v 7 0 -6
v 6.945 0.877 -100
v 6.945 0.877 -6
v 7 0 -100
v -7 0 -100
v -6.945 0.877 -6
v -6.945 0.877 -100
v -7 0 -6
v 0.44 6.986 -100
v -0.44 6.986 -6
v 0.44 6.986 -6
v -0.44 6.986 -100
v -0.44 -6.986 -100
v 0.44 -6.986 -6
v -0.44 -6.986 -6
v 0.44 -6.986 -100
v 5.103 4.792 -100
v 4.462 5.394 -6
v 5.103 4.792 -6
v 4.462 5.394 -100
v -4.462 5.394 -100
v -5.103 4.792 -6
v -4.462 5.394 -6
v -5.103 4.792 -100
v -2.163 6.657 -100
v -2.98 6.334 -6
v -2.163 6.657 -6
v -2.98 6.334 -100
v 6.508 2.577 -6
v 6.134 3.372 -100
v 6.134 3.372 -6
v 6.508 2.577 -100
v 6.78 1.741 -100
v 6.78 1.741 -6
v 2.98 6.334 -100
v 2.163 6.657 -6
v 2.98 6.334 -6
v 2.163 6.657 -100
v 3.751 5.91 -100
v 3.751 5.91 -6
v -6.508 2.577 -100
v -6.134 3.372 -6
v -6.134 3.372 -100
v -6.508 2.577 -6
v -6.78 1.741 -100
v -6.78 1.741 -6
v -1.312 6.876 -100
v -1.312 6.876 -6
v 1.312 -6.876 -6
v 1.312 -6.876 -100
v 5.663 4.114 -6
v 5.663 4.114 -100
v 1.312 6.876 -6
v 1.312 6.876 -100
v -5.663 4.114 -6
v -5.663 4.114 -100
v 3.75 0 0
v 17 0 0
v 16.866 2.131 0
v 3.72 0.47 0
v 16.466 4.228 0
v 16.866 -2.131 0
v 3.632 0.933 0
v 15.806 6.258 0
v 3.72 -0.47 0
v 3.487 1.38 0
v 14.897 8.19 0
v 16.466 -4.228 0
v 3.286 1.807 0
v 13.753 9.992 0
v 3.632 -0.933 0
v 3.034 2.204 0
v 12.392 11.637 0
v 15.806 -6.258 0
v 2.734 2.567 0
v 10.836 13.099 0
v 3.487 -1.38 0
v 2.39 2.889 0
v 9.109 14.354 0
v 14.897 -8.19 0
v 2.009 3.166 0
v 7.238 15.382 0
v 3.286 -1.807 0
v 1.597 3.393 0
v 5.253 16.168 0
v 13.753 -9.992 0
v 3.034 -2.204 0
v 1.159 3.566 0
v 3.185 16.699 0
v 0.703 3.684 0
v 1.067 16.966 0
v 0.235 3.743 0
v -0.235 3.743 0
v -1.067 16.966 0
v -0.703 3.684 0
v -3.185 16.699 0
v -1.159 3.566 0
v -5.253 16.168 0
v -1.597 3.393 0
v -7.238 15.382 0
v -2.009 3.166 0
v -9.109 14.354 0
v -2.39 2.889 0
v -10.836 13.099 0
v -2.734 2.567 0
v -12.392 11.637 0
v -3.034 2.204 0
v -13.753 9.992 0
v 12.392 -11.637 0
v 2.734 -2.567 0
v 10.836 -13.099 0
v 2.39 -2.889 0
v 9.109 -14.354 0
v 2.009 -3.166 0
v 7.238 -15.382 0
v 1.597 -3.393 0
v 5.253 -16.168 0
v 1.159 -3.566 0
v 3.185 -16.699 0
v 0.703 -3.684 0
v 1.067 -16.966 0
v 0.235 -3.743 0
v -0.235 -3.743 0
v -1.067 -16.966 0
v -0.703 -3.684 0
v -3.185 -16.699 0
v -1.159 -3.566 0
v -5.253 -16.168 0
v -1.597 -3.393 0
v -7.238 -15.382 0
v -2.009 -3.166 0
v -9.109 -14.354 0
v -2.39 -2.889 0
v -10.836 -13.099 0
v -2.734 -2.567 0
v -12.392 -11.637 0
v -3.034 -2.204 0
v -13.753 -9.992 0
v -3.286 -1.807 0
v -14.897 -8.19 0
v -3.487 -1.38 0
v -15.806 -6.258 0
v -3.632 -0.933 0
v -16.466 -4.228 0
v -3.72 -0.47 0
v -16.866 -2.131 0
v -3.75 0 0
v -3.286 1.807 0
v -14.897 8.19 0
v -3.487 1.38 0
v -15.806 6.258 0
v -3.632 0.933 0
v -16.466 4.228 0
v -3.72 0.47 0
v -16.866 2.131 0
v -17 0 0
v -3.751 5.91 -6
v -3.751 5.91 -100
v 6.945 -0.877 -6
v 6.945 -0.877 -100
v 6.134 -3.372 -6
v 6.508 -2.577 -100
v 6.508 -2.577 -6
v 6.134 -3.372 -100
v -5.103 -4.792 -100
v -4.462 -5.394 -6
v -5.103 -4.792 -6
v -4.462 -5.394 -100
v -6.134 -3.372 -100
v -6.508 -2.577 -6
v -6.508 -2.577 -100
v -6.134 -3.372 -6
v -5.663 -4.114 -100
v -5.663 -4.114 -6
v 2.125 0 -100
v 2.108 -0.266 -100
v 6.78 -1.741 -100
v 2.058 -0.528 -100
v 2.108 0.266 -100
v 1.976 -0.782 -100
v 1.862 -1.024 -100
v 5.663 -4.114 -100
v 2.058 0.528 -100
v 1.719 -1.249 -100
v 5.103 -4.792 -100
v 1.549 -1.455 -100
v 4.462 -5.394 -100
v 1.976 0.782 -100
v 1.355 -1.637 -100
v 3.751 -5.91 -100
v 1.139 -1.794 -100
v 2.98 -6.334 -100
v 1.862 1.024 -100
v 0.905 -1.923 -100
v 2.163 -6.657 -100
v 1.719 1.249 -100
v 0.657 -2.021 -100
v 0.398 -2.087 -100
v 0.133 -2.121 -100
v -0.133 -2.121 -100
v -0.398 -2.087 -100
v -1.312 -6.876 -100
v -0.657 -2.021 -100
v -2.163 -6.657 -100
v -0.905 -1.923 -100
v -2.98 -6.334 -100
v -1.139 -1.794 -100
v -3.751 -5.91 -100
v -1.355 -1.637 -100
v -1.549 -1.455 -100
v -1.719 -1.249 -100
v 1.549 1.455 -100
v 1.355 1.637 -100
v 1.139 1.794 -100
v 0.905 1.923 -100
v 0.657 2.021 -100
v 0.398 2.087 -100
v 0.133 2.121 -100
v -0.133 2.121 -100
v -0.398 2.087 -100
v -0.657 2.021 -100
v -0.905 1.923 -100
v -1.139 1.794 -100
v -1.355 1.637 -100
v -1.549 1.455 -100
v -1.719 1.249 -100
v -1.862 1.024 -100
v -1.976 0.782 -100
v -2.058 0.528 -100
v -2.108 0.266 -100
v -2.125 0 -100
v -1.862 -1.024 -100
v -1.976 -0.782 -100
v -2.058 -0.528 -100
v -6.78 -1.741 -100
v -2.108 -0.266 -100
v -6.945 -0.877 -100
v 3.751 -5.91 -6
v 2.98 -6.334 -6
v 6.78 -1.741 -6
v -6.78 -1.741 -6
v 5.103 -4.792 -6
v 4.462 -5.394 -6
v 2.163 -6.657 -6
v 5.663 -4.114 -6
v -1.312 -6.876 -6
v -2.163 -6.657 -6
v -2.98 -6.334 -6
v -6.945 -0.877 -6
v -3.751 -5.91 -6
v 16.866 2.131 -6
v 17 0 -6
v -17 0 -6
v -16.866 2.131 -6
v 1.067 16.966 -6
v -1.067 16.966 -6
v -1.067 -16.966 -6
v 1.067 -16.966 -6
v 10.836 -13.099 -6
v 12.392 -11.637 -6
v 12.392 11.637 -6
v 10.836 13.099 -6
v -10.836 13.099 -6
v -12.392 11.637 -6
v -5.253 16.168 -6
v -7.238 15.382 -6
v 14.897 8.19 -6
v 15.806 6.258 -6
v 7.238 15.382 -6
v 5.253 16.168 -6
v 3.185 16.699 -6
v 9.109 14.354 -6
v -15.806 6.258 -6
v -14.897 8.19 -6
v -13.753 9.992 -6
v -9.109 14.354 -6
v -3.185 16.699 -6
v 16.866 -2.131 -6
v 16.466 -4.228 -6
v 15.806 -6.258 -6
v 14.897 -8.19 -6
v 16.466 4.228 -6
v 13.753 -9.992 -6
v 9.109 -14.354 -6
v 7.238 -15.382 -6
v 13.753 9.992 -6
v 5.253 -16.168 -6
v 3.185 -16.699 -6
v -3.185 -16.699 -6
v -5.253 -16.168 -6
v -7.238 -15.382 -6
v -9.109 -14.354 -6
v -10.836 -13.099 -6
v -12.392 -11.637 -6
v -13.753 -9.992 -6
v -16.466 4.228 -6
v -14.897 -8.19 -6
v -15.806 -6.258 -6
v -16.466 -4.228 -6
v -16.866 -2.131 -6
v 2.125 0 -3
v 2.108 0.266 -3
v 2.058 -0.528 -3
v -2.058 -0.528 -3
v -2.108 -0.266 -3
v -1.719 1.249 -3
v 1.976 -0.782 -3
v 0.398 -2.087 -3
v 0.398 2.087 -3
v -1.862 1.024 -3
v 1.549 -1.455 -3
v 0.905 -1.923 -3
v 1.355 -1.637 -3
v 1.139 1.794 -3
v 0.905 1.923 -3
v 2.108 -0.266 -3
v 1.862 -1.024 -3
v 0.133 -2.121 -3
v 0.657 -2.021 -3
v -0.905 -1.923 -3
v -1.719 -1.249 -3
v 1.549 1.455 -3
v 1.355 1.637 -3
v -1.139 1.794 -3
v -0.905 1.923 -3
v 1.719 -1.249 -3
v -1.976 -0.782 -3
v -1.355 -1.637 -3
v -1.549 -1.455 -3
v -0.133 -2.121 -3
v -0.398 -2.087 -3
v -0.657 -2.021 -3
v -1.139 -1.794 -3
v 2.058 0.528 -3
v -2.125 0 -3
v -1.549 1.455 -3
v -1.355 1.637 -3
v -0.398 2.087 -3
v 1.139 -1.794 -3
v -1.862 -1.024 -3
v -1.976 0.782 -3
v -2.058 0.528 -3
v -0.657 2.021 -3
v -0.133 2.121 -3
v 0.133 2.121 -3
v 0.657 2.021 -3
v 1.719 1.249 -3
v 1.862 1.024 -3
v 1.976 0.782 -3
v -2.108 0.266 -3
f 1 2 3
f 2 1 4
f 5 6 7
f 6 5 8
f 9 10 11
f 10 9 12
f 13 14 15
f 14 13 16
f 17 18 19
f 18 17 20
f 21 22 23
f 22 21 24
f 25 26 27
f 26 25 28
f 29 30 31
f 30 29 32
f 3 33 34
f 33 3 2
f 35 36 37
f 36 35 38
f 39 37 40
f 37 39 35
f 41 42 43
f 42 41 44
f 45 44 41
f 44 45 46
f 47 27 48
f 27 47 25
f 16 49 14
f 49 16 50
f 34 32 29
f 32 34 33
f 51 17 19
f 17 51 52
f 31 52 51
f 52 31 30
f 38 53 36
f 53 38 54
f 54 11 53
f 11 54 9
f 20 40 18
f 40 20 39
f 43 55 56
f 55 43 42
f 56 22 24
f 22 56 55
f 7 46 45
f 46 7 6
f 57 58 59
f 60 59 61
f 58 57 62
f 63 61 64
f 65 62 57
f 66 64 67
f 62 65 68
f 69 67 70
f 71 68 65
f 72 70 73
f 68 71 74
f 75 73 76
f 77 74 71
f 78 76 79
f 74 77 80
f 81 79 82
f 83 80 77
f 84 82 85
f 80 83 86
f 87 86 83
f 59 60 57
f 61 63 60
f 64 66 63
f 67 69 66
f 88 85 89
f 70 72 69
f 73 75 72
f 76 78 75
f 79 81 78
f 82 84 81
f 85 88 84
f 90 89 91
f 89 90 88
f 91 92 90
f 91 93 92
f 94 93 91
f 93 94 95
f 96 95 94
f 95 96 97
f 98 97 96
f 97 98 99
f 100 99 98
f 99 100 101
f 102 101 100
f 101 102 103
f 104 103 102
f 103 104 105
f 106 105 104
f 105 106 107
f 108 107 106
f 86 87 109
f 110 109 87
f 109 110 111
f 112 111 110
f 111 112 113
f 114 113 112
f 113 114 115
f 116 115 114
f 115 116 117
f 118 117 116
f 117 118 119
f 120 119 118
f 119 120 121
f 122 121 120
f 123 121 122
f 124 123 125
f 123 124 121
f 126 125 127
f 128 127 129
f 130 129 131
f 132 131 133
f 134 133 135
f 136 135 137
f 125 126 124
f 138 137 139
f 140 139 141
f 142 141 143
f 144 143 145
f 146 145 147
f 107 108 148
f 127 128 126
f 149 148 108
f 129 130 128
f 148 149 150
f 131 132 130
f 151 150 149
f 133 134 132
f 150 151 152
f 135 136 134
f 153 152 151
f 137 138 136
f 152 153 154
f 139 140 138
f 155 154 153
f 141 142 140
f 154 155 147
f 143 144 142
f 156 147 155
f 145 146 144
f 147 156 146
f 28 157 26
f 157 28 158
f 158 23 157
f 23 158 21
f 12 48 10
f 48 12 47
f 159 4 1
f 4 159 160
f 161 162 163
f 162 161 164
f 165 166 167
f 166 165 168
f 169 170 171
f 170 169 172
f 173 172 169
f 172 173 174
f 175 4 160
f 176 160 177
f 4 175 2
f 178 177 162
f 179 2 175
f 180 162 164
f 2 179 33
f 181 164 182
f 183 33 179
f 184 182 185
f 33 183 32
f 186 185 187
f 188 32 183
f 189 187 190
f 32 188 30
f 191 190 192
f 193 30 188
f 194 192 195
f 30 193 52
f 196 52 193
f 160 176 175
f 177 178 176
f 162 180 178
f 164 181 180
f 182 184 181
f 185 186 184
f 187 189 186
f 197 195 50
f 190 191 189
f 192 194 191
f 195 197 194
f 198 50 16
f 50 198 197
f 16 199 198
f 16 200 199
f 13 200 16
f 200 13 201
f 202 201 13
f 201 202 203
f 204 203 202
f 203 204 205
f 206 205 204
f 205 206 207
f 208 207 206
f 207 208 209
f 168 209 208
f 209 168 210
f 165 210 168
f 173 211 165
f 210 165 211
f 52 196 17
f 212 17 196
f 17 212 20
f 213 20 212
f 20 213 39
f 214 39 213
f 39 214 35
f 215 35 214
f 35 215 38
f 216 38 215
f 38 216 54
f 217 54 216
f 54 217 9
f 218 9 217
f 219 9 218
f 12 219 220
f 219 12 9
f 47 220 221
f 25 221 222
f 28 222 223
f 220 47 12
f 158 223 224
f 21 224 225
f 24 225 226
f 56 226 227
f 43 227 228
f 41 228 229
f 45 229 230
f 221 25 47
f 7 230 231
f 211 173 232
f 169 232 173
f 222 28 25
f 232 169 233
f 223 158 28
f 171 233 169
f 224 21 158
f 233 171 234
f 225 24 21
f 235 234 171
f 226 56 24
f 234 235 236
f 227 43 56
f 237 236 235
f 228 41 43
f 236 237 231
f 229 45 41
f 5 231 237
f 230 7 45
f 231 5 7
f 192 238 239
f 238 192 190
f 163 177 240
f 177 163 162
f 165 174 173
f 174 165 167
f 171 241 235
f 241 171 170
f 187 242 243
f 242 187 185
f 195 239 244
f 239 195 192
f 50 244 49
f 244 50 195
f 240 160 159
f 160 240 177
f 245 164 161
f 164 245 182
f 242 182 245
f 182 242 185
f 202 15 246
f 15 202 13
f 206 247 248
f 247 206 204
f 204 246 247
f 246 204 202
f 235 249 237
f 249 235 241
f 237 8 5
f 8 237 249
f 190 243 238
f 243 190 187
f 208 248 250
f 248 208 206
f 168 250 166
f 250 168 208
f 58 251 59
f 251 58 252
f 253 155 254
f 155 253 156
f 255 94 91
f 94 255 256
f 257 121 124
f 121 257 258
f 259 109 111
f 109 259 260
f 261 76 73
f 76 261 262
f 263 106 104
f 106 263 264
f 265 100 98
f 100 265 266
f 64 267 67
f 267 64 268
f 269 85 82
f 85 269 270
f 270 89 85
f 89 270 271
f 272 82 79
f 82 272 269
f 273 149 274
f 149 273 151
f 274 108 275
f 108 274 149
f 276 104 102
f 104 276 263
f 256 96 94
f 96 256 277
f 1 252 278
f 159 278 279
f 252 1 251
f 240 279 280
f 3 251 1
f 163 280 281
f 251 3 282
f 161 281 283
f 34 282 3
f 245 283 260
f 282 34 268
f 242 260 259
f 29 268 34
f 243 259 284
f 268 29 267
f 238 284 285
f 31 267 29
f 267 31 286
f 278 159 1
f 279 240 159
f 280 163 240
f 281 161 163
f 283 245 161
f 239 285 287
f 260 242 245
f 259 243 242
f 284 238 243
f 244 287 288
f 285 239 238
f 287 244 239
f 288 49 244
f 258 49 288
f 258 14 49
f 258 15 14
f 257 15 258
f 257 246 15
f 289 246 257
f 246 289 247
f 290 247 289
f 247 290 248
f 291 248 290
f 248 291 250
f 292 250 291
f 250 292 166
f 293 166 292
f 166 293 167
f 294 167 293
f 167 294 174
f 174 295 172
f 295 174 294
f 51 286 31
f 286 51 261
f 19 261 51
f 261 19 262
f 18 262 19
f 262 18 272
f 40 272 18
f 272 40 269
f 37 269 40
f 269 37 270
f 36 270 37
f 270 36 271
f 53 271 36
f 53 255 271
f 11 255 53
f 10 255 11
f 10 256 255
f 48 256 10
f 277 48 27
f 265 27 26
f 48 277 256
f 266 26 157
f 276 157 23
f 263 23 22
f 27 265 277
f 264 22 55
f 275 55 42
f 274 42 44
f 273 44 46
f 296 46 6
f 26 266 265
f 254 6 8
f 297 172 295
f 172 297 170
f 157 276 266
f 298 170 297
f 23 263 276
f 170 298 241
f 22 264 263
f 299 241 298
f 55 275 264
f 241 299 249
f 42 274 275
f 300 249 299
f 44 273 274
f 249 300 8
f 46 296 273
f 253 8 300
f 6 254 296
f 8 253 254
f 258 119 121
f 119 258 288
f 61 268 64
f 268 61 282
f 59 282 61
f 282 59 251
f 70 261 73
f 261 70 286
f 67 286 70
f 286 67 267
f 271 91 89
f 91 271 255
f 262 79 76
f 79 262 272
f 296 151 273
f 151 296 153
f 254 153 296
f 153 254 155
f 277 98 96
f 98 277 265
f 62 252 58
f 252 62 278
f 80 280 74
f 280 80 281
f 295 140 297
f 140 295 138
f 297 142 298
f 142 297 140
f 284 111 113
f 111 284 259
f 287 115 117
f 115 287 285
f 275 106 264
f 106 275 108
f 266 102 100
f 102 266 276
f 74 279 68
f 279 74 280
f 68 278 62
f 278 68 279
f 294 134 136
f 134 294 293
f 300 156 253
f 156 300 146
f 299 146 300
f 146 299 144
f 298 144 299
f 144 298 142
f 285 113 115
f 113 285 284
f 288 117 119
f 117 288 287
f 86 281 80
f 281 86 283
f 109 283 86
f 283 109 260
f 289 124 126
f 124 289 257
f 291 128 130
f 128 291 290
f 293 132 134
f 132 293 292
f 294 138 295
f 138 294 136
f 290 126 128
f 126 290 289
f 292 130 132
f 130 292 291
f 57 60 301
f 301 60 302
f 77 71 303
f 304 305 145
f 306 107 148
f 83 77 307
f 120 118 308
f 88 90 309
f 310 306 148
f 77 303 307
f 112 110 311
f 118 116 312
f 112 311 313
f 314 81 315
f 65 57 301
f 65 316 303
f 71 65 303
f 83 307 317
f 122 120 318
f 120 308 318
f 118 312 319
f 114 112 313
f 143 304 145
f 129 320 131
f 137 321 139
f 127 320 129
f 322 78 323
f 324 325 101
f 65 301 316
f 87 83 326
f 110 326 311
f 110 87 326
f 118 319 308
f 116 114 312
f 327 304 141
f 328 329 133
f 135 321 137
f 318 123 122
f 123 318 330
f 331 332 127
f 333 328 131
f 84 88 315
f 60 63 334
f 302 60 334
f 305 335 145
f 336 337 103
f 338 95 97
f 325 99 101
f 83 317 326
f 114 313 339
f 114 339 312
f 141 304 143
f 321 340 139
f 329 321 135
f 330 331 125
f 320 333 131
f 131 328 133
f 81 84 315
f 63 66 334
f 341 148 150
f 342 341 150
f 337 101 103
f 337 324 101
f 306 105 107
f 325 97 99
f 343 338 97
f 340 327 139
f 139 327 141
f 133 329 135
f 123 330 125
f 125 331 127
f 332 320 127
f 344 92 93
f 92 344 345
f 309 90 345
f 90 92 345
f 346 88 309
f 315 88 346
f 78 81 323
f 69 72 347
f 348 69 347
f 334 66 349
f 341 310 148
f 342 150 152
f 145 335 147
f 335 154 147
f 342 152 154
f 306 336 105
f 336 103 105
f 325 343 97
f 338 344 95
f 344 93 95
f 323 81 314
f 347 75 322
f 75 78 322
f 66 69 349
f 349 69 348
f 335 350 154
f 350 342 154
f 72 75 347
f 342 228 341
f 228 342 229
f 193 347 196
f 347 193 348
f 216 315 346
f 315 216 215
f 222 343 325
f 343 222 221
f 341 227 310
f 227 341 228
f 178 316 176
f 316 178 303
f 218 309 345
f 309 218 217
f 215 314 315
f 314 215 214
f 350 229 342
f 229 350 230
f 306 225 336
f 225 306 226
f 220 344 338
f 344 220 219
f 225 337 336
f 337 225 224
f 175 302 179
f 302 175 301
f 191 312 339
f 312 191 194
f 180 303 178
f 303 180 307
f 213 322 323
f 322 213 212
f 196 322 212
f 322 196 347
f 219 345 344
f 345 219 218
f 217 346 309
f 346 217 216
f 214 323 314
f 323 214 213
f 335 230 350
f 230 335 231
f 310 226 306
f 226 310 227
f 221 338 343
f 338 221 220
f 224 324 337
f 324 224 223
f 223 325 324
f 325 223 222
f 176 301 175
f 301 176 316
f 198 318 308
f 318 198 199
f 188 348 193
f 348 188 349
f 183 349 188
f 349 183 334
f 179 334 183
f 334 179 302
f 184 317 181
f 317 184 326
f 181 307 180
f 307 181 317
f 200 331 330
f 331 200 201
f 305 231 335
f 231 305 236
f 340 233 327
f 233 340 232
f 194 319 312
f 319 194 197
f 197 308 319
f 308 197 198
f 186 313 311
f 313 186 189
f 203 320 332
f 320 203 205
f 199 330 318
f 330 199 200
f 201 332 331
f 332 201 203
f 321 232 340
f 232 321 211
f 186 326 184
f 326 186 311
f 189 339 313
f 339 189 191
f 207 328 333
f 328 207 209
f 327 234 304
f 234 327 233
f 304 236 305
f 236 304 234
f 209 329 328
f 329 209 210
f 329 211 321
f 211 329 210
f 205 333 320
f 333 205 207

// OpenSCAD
$fn = 50;


difference() {
	union() {
		translate(v = [0, 0, -100.0000000000]) {
			cylinder(h = 100, r = 7.0000000000);
		}
		translate(v = [0, 0, -6.0000000000]) {
			cylinder(h = 6, r = 17.0000000000);
		}
	}
	union() {
		translate(v = [0, 0, 0]) {
			rotate(a = [0, 0, 0]) {
				difference() {
					union() {
						#translate(v = [0, 0, -100.0000000000]) {
							cylinder(h = 100, r = 2.0000000000);
						}
						#translate(v = [0, 0, -3]) {
							cylinder(h = 3, r1 = 2.1250000000, r2 = 3.7500000000);
						}
						#translate(v = [0, 0, -100.0000000000]) {
							cylinder(h = 100, r = 2.1250000000);
						}
						#translate(v = [0, 0, -100.0000000000]) {
							cylinder(h = 100, r = 2.0000000000);
						}
					}
					union();
				}
			}
		}
	}
}
